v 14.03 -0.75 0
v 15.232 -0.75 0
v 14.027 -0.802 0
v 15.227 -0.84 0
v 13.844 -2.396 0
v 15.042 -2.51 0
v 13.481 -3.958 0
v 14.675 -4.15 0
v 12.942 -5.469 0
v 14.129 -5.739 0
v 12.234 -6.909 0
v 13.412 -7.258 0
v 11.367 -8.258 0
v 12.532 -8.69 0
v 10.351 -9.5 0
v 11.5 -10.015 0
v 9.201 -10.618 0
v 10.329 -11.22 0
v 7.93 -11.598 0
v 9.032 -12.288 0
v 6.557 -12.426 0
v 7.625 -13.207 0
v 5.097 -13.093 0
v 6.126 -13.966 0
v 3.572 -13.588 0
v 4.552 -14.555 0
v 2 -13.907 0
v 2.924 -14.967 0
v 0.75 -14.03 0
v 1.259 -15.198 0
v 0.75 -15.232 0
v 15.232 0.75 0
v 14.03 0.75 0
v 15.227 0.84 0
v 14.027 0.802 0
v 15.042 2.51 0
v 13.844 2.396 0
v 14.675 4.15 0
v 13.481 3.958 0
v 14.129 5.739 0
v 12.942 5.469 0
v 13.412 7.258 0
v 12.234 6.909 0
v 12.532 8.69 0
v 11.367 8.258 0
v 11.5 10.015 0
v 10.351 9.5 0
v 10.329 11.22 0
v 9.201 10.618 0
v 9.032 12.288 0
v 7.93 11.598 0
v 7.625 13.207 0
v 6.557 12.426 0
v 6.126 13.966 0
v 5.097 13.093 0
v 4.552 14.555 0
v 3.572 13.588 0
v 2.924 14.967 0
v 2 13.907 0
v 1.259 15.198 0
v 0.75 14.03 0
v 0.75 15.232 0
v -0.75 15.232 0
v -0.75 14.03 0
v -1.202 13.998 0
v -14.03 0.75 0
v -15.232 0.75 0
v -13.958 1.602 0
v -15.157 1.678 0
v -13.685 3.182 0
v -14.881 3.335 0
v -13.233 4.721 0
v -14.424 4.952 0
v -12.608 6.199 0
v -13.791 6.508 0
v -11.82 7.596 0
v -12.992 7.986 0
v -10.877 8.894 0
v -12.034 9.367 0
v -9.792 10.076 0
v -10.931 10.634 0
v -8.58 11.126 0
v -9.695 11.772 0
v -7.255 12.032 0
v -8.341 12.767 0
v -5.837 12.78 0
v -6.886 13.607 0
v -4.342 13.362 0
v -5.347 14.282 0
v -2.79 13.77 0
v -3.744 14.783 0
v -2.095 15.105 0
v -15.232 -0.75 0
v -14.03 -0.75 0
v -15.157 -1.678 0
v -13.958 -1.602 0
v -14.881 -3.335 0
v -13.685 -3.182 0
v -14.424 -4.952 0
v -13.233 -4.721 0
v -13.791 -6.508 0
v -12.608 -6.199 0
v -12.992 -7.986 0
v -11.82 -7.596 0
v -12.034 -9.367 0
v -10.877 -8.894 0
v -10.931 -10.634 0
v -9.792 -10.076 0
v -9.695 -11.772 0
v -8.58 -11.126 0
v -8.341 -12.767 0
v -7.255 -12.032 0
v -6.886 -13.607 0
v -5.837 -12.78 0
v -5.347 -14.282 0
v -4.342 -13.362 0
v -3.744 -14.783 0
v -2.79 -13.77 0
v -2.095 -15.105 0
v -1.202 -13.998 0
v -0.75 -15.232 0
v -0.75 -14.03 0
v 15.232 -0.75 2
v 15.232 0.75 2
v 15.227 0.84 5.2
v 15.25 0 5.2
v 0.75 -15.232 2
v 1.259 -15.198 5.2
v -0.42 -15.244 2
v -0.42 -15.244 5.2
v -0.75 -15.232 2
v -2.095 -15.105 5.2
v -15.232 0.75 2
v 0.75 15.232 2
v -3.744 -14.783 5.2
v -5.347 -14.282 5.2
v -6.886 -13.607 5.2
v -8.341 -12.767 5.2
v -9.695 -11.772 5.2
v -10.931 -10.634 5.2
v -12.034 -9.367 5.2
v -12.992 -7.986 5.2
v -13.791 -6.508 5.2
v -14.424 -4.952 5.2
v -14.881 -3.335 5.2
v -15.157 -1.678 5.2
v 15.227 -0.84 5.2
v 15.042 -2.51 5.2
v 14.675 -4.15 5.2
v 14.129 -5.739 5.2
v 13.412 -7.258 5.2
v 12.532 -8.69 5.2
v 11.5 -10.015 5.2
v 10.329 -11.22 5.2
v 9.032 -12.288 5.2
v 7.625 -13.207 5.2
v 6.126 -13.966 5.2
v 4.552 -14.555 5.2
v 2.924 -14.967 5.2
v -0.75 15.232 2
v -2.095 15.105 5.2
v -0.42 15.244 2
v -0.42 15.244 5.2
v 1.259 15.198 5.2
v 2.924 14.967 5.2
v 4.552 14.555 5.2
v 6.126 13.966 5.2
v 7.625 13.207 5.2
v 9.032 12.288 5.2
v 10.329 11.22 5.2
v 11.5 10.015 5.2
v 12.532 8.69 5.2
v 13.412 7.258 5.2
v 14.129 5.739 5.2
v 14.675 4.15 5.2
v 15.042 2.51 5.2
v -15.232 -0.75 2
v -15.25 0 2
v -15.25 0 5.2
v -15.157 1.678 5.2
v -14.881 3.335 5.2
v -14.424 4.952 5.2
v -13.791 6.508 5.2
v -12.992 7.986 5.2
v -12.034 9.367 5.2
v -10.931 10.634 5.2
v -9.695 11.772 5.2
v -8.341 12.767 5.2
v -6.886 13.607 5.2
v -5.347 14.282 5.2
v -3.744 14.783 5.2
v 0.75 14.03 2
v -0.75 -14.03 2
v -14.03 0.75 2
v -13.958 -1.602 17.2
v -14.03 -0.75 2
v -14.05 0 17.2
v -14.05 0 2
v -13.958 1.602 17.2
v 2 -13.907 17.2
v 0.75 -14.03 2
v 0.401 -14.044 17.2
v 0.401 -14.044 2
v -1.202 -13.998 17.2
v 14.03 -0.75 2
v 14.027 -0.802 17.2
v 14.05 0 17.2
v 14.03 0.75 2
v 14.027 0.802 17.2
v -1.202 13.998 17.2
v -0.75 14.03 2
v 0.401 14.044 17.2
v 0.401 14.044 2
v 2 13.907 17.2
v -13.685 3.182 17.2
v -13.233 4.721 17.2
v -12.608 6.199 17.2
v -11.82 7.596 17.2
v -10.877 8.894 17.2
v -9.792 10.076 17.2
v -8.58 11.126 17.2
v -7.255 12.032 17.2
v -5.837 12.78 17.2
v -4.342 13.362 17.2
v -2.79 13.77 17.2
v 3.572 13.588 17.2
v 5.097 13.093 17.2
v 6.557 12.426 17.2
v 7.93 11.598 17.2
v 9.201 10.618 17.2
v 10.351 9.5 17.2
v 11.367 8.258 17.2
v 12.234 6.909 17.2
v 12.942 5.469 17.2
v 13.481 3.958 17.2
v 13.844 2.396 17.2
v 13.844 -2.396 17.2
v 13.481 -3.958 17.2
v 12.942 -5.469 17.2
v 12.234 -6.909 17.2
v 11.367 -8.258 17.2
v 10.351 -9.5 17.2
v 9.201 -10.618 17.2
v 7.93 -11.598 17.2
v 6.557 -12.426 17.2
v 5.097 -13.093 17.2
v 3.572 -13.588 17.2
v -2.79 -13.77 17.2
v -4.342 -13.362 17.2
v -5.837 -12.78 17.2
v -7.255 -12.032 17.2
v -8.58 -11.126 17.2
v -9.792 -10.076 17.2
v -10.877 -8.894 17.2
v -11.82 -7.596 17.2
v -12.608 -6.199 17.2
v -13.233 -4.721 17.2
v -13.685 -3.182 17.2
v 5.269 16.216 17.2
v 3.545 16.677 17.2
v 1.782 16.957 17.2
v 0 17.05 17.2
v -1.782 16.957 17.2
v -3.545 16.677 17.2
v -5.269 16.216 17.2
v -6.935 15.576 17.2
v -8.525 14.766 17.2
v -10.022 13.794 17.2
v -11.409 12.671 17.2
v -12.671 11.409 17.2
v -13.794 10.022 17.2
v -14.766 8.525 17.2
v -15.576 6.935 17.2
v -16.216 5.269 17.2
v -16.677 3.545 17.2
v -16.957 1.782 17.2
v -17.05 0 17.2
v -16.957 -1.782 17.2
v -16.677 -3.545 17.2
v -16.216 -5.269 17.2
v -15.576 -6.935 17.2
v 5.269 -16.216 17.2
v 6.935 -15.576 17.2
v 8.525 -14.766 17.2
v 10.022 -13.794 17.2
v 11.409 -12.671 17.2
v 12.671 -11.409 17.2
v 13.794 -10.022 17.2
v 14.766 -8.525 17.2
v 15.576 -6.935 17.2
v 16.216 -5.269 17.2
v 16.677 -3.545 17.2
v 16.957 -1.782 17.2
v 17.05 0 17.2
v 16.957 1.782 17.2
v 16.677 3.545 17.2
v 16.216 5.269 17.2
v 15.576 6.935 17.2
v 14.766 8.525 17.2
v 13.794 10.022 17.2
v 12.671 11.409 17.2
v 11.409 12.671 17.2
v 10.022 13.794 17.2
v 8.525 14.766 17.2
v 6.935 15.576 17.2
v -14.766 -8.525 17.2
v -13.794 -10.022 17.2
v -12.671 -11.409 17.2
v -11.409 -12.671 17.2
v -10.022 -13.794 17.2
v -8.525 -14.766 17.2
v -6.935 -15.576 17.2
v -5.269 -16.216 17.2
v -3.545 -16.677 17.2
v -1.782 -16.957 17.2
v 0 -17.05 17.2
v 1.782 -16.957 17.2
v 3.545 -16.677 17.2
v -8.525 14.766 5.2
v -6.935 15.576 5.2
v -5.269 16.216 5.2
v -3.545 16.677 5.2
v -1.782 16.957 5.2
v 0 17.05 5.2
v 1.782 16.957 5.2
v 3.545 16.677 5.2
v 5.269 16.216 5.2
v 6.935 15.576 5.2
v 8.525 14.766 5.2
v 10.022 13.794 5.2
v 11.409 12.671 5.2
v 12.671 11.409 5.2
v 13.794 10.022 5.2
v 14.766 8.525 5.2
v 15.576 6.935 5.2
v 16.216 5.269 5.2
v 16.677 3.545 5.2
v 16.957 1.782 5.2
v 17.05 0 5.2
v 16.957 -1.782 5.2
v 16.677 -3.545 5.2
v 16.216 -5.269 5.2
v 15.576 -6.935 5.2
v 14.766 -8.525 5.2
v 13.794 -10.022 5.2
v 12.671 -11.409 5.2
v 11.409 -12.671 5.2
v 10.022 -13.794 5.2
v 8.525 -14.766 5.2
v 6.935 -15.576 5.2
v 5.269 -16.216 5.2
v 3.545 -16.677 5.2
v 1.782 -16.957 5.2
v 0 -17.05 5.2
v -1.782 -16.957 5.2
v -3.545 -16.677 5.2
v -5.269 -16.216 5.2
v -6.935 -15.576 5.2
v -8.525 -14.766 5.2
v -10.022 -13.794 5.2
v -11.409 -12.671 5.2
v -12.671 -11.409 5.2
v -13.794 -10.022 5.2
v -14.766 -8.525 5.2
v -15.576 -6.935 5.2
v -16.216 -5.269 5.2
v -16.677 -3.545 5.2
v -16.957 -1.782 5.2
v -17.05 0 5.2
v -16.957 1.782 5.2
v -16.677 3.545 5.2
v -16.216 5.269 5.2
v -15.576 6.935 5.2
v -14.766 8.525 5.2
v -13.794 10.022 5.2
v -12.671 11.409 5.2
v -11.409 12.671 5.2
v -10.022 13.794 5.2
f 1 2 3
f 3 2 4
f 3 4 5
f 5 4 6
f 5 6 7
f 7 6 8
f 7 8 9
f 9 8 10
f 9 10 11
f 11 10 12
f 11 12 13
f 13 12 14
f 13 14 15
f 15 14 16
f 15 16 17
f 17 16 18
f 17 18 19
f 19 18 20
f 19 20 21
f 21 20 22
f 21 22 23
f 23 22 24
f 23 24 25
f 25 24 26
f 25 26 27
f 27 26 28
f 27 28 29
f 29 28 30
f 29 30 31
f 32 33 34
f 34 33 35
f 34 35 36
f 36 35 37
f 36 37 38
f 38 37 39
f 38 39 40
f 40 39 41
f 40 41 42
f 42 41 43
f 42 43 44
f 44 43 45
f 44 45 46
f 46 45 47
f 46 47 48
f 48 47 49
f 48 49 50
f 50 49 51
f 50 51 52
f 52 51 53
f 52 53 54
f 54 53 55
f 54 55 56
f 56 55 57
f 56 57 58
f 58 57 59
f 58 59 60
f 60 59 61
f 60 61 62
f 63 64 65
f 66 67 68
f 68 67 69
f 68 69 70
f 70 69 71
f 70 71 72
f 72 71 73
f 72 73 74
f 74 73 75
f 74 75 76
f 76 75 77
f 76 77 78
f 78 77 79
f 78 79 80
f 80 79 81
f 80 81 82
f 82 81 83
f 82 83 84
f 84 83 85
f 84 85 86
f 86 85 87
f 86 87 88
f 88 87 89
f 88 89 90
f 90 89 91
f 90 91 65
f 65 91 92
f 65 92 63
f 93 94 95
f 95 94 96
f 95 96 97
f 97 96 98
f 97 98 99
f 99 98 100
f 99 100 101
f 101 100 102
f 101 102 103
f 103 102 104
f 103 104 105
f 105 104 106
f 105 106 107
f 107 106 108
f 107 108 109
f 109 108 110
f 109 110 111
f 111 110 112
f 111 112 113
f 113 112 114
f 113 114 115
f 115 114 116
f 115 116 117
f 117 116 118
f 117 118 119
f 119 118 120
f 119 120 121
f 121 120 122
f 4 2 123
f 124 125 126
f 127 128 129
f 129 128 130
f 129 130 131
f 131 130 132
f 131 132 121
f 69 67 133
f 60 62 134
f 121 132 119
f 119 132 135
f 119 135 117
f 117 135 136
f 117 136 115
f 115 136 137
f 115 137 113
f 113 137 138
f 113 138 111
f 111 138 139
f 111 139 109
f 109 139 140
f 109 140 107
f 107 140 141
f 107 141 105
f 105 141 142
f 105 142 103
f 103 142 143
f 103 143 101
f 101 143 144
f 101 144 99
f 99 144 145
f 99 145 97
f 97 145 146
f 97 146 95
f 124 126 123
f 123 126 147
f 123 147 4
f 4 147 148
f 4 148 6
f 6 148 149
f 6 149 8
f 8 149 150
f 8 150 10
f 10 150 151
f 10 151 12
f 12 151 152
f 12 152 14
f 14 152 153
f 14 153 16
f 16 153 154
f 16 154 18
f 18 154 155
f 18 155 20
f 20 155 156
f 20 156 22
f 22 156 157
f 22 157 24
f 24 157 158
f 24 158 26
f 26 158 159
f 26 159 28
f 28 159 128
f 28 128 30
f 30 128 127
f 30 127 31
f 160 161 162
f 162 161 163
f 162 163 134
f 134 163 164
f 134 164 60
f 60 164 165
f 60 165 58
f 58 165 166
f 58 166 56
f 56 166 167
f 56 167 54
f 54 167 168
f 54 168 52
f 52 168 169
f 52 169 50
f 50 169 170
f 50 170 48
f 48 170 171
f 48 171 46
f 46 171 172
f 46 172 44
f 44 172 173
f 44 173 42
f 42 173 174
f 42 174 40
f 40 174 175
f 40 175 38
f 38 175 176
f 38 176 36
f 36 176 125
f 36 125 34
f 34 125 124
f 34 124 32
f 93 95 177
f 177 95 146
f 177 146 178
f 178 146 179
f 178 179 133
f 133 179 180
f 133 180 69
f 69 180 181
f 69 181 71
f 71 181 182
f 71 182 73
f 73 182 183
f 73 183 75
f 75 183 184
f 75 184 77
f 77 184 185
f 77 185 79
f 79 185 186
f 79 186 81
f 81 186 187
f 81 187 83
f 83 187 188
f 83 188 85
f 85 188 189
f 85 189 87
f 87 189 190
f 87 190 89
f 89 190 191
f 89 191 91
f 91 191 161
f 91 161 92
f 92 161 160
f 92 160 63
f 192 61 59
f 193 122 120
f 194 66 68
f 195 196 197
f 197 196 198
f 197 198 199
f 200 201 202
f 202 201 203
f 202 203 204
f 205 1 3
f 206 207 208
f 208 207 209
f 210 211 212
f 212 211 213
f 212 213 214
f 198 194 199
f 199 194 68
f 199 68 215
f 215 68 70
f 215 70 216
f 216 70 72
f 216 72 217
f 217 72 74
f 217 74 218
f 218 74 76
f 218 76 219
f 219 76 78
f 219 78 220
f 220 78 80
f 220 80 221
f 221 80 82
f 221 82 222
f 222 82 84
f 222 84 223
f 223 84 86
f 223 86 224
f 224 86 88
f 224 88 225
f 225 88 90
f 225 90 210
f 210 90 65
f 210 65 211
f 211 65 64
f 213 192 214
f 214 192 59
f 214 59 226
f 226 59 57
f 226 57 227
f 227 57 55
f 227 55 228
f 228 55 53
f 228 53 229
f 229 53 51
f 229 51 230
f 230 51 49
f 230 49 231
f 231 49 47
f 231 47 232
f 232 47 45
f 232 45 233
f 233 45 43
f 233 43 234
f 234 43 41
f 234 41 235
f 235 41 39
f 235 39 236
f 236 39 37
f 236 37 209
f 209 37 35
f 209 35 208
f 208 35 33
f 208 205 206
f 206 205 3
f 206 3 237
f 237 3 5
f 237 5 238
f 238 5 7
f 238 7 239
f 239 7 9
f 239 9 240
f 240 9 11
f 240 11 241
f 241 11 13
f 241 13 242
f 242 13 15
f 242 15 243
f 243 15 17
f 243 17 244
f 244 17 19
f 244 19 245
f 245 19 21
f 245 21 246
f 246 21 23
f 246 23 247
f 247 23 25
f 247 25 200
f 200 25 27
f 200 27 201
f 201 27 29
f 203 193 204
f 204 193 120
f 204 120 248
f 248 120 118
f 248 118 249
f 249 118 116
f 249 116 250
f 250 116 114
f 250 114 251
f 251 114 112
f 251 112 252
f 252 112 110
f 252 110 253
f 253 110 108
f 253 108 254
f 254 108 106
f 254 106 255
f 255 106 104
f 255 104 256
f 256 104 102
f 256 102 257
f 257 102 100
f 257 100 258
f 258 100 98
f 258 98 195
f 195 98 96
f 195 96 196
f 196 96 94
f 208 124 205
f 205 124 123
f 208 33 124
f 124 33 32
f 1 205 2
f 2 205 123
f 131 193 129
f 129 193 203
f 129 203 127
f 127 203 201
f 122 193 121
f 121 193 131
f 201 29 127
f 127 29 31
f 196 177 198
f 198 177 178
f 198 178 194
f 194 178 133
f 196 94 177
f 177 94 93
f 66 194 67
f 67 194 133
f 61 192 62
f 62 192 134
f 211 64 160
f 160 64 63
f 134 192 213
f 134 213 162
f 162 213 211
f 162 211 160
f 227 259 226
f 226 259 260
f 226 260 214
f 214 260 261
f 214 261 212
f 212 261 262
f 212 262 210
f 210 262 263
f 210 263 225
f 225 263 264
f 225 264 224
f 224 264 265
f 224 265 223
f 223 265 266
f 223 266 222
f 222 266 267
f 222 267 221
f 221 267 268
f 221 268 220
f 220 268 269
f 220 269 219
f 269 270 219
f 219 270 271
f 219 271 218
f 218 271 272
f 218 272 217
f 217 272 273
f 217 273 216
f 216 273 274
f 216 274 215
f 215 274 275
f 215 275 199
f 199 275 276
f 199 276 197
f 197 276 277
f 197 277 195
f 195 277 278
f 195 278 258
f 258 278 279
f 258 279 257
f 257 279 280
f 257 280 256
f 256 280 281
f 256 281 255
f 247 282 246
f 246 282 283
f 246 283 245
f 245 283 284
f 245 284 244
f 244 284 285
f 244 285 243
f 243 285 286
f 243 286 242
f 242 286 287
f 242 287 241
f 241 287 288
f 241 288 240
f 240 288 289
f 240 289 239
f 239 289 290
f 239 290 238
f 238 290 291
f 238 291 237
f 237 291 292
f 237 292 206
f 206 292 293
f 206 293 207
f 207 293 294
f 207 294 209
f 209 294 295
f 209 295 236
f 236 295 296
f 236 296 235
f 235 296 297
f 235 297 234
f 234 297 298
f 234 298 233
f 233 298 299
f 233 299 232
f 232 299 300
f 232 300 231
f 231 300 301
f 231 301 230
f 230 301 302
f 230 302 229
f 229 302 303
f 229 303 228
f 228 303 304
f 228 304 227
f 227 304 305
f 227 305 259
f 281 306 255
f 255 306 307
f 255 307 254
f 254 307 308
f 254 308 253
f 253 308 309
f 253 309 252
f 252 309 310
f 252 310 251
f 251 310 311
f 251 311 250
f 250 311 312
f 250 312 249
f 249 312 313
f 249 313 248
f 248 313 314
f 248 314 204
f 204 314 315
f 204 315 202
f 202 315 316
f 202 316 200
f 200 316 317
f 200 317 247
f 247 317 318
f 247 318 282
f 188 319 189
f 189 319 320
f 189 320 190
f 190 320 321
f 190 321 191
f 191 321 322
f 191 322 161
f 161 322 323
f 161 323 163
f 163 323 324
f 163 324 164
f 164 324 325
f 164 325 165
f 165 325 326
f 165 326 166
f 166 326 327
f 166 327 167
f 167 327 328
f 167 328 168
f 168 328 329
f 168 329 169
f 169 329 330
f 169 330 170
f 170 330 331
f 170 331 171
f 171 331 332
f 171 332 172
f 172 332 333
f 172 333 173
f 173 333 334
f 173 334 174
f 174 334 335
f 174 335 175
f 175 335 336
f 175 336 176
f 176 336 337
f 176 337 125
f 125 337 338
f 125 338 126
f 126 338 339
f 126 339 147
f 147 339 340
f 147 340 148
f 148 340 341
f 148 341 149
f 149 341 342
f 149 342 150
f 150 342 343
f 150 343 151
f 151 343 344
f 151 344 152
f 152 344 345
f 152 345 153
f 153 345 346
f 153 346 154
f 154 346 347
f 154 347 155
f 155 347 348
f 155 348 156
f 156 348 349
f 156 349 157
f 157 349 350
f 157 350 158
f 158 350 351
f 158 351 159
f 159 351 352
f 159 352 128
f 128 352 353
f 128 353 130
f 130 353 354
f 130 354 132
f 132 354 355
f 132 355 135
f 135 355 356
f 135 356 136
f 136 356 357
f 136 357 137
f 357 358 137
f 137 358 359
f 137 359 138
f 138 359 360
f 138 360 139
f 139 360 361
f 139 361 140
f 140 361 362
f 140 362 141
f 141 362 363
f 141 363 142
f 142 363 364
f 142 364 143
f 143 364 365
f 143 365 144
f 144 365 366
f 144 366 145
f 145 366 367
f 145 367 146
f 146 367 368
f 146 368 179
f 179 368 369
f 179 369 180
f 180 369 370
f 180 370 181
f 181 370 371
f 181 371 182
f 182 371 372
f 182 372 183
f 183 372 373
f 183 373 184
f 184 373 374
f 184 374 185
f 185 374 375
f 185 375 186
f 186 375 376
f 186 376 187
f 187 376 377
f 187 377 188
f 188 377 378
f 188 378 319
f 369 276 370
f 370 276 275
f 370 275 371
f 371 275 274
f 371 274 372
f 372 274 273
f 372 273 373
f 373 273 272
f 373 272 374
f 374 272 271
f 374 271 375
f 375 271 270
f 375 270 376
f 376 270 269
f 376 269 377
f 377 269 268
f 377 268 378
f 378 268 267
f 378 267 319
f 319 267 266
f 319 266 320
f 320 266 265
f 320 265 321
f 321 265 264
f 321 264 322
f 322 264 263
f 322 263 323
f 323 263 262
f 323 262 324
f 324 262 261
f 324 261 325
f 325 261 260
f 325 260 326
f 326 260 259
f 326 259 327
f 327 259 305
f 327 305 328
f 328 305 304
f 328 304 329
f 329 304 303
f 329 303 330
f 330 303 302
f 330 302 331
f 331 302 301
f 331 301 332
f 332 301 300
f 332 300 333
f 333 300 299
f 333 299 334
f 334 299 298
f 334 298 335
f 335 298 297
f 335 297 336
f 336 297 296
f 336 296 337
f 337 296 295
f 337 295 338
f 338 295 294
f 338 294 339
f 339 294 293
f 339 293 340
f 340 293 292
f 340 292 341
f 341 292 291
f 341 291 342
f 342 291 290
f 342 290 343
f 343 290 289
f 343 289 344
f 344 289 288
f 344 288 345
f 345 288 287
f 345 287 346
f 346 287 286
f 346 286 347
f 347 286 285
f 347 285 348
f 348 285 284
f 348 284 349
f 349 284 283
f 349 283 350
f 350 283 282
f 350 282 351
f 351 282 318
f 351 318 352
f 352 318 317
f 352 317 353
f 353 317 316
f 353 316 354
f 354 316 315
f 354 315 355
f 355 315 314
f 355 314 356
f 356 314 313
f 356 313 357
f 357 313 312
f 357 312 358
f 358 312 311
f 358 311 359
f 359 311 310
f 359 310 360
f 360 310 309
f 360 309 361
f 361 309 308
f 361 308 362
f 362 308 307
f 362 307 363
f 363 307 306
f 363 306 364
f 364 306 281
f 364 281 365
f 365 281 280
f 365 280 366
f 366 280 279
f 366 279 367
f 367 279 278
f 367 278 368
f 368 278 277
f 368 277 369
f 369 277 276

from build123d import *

# Parameters (mm, degrees)
SKETCH1_R           = 15.25
SKETCH1_R_2         = 14.05
BOSS_EXTRUDE1_DEPTH = 5.2
CUT_EXTRUDE1_DEPTH  = 2
SKETCH4_R           = 17.05
SKETCH4_R_2         = 14.05
BOSS_EXTRUDE2_DEPTH = 12


with BuildPart() as part:
    # Sketch1 → Boss-Extrude1 (new body)
    with BuildSketch(Plane.XY):
        Circle(SKETCH1_R)
        Circle(SKETCH1_R_2, mode=Mode.SUBTRACT)
    extrude(amount=BOSS_EXTRUDE1_DEPTH)

    # Sketch2 → Cut-Extrude1 (cut)
    with BuildSketch(Plane.XY):
        Polygon((-0.75, 17.451253501), (0.75, 17.451253501), (0.75, 0.75), (21.876520237, 0.75), (21.876520237, -0.75), (0.75, -0.75), (0.75, -17.451253501), (-0.75, -17.451253501), (-0.75, -0.75), (-21.876520237, -0.75), (-21.876520237, 0.75), (-0.75, 0.75), align=None)
    extrude(amount=CUT_EXTRUDE1_DEPTH, mode=Mode.SUBTRACT)

    # Sketch4 → Boss-Extrude2 (add)
    with BuildSketch(Plane.XY.offset(5.2)):
        Circle(SKETCH4_R)
        Circle(SKETCH4_R_2, mode=Mode.SUBTRACT)
    extrude(amount=BOSS_EXTRUDE2_DEPTH)


solid = part.part
